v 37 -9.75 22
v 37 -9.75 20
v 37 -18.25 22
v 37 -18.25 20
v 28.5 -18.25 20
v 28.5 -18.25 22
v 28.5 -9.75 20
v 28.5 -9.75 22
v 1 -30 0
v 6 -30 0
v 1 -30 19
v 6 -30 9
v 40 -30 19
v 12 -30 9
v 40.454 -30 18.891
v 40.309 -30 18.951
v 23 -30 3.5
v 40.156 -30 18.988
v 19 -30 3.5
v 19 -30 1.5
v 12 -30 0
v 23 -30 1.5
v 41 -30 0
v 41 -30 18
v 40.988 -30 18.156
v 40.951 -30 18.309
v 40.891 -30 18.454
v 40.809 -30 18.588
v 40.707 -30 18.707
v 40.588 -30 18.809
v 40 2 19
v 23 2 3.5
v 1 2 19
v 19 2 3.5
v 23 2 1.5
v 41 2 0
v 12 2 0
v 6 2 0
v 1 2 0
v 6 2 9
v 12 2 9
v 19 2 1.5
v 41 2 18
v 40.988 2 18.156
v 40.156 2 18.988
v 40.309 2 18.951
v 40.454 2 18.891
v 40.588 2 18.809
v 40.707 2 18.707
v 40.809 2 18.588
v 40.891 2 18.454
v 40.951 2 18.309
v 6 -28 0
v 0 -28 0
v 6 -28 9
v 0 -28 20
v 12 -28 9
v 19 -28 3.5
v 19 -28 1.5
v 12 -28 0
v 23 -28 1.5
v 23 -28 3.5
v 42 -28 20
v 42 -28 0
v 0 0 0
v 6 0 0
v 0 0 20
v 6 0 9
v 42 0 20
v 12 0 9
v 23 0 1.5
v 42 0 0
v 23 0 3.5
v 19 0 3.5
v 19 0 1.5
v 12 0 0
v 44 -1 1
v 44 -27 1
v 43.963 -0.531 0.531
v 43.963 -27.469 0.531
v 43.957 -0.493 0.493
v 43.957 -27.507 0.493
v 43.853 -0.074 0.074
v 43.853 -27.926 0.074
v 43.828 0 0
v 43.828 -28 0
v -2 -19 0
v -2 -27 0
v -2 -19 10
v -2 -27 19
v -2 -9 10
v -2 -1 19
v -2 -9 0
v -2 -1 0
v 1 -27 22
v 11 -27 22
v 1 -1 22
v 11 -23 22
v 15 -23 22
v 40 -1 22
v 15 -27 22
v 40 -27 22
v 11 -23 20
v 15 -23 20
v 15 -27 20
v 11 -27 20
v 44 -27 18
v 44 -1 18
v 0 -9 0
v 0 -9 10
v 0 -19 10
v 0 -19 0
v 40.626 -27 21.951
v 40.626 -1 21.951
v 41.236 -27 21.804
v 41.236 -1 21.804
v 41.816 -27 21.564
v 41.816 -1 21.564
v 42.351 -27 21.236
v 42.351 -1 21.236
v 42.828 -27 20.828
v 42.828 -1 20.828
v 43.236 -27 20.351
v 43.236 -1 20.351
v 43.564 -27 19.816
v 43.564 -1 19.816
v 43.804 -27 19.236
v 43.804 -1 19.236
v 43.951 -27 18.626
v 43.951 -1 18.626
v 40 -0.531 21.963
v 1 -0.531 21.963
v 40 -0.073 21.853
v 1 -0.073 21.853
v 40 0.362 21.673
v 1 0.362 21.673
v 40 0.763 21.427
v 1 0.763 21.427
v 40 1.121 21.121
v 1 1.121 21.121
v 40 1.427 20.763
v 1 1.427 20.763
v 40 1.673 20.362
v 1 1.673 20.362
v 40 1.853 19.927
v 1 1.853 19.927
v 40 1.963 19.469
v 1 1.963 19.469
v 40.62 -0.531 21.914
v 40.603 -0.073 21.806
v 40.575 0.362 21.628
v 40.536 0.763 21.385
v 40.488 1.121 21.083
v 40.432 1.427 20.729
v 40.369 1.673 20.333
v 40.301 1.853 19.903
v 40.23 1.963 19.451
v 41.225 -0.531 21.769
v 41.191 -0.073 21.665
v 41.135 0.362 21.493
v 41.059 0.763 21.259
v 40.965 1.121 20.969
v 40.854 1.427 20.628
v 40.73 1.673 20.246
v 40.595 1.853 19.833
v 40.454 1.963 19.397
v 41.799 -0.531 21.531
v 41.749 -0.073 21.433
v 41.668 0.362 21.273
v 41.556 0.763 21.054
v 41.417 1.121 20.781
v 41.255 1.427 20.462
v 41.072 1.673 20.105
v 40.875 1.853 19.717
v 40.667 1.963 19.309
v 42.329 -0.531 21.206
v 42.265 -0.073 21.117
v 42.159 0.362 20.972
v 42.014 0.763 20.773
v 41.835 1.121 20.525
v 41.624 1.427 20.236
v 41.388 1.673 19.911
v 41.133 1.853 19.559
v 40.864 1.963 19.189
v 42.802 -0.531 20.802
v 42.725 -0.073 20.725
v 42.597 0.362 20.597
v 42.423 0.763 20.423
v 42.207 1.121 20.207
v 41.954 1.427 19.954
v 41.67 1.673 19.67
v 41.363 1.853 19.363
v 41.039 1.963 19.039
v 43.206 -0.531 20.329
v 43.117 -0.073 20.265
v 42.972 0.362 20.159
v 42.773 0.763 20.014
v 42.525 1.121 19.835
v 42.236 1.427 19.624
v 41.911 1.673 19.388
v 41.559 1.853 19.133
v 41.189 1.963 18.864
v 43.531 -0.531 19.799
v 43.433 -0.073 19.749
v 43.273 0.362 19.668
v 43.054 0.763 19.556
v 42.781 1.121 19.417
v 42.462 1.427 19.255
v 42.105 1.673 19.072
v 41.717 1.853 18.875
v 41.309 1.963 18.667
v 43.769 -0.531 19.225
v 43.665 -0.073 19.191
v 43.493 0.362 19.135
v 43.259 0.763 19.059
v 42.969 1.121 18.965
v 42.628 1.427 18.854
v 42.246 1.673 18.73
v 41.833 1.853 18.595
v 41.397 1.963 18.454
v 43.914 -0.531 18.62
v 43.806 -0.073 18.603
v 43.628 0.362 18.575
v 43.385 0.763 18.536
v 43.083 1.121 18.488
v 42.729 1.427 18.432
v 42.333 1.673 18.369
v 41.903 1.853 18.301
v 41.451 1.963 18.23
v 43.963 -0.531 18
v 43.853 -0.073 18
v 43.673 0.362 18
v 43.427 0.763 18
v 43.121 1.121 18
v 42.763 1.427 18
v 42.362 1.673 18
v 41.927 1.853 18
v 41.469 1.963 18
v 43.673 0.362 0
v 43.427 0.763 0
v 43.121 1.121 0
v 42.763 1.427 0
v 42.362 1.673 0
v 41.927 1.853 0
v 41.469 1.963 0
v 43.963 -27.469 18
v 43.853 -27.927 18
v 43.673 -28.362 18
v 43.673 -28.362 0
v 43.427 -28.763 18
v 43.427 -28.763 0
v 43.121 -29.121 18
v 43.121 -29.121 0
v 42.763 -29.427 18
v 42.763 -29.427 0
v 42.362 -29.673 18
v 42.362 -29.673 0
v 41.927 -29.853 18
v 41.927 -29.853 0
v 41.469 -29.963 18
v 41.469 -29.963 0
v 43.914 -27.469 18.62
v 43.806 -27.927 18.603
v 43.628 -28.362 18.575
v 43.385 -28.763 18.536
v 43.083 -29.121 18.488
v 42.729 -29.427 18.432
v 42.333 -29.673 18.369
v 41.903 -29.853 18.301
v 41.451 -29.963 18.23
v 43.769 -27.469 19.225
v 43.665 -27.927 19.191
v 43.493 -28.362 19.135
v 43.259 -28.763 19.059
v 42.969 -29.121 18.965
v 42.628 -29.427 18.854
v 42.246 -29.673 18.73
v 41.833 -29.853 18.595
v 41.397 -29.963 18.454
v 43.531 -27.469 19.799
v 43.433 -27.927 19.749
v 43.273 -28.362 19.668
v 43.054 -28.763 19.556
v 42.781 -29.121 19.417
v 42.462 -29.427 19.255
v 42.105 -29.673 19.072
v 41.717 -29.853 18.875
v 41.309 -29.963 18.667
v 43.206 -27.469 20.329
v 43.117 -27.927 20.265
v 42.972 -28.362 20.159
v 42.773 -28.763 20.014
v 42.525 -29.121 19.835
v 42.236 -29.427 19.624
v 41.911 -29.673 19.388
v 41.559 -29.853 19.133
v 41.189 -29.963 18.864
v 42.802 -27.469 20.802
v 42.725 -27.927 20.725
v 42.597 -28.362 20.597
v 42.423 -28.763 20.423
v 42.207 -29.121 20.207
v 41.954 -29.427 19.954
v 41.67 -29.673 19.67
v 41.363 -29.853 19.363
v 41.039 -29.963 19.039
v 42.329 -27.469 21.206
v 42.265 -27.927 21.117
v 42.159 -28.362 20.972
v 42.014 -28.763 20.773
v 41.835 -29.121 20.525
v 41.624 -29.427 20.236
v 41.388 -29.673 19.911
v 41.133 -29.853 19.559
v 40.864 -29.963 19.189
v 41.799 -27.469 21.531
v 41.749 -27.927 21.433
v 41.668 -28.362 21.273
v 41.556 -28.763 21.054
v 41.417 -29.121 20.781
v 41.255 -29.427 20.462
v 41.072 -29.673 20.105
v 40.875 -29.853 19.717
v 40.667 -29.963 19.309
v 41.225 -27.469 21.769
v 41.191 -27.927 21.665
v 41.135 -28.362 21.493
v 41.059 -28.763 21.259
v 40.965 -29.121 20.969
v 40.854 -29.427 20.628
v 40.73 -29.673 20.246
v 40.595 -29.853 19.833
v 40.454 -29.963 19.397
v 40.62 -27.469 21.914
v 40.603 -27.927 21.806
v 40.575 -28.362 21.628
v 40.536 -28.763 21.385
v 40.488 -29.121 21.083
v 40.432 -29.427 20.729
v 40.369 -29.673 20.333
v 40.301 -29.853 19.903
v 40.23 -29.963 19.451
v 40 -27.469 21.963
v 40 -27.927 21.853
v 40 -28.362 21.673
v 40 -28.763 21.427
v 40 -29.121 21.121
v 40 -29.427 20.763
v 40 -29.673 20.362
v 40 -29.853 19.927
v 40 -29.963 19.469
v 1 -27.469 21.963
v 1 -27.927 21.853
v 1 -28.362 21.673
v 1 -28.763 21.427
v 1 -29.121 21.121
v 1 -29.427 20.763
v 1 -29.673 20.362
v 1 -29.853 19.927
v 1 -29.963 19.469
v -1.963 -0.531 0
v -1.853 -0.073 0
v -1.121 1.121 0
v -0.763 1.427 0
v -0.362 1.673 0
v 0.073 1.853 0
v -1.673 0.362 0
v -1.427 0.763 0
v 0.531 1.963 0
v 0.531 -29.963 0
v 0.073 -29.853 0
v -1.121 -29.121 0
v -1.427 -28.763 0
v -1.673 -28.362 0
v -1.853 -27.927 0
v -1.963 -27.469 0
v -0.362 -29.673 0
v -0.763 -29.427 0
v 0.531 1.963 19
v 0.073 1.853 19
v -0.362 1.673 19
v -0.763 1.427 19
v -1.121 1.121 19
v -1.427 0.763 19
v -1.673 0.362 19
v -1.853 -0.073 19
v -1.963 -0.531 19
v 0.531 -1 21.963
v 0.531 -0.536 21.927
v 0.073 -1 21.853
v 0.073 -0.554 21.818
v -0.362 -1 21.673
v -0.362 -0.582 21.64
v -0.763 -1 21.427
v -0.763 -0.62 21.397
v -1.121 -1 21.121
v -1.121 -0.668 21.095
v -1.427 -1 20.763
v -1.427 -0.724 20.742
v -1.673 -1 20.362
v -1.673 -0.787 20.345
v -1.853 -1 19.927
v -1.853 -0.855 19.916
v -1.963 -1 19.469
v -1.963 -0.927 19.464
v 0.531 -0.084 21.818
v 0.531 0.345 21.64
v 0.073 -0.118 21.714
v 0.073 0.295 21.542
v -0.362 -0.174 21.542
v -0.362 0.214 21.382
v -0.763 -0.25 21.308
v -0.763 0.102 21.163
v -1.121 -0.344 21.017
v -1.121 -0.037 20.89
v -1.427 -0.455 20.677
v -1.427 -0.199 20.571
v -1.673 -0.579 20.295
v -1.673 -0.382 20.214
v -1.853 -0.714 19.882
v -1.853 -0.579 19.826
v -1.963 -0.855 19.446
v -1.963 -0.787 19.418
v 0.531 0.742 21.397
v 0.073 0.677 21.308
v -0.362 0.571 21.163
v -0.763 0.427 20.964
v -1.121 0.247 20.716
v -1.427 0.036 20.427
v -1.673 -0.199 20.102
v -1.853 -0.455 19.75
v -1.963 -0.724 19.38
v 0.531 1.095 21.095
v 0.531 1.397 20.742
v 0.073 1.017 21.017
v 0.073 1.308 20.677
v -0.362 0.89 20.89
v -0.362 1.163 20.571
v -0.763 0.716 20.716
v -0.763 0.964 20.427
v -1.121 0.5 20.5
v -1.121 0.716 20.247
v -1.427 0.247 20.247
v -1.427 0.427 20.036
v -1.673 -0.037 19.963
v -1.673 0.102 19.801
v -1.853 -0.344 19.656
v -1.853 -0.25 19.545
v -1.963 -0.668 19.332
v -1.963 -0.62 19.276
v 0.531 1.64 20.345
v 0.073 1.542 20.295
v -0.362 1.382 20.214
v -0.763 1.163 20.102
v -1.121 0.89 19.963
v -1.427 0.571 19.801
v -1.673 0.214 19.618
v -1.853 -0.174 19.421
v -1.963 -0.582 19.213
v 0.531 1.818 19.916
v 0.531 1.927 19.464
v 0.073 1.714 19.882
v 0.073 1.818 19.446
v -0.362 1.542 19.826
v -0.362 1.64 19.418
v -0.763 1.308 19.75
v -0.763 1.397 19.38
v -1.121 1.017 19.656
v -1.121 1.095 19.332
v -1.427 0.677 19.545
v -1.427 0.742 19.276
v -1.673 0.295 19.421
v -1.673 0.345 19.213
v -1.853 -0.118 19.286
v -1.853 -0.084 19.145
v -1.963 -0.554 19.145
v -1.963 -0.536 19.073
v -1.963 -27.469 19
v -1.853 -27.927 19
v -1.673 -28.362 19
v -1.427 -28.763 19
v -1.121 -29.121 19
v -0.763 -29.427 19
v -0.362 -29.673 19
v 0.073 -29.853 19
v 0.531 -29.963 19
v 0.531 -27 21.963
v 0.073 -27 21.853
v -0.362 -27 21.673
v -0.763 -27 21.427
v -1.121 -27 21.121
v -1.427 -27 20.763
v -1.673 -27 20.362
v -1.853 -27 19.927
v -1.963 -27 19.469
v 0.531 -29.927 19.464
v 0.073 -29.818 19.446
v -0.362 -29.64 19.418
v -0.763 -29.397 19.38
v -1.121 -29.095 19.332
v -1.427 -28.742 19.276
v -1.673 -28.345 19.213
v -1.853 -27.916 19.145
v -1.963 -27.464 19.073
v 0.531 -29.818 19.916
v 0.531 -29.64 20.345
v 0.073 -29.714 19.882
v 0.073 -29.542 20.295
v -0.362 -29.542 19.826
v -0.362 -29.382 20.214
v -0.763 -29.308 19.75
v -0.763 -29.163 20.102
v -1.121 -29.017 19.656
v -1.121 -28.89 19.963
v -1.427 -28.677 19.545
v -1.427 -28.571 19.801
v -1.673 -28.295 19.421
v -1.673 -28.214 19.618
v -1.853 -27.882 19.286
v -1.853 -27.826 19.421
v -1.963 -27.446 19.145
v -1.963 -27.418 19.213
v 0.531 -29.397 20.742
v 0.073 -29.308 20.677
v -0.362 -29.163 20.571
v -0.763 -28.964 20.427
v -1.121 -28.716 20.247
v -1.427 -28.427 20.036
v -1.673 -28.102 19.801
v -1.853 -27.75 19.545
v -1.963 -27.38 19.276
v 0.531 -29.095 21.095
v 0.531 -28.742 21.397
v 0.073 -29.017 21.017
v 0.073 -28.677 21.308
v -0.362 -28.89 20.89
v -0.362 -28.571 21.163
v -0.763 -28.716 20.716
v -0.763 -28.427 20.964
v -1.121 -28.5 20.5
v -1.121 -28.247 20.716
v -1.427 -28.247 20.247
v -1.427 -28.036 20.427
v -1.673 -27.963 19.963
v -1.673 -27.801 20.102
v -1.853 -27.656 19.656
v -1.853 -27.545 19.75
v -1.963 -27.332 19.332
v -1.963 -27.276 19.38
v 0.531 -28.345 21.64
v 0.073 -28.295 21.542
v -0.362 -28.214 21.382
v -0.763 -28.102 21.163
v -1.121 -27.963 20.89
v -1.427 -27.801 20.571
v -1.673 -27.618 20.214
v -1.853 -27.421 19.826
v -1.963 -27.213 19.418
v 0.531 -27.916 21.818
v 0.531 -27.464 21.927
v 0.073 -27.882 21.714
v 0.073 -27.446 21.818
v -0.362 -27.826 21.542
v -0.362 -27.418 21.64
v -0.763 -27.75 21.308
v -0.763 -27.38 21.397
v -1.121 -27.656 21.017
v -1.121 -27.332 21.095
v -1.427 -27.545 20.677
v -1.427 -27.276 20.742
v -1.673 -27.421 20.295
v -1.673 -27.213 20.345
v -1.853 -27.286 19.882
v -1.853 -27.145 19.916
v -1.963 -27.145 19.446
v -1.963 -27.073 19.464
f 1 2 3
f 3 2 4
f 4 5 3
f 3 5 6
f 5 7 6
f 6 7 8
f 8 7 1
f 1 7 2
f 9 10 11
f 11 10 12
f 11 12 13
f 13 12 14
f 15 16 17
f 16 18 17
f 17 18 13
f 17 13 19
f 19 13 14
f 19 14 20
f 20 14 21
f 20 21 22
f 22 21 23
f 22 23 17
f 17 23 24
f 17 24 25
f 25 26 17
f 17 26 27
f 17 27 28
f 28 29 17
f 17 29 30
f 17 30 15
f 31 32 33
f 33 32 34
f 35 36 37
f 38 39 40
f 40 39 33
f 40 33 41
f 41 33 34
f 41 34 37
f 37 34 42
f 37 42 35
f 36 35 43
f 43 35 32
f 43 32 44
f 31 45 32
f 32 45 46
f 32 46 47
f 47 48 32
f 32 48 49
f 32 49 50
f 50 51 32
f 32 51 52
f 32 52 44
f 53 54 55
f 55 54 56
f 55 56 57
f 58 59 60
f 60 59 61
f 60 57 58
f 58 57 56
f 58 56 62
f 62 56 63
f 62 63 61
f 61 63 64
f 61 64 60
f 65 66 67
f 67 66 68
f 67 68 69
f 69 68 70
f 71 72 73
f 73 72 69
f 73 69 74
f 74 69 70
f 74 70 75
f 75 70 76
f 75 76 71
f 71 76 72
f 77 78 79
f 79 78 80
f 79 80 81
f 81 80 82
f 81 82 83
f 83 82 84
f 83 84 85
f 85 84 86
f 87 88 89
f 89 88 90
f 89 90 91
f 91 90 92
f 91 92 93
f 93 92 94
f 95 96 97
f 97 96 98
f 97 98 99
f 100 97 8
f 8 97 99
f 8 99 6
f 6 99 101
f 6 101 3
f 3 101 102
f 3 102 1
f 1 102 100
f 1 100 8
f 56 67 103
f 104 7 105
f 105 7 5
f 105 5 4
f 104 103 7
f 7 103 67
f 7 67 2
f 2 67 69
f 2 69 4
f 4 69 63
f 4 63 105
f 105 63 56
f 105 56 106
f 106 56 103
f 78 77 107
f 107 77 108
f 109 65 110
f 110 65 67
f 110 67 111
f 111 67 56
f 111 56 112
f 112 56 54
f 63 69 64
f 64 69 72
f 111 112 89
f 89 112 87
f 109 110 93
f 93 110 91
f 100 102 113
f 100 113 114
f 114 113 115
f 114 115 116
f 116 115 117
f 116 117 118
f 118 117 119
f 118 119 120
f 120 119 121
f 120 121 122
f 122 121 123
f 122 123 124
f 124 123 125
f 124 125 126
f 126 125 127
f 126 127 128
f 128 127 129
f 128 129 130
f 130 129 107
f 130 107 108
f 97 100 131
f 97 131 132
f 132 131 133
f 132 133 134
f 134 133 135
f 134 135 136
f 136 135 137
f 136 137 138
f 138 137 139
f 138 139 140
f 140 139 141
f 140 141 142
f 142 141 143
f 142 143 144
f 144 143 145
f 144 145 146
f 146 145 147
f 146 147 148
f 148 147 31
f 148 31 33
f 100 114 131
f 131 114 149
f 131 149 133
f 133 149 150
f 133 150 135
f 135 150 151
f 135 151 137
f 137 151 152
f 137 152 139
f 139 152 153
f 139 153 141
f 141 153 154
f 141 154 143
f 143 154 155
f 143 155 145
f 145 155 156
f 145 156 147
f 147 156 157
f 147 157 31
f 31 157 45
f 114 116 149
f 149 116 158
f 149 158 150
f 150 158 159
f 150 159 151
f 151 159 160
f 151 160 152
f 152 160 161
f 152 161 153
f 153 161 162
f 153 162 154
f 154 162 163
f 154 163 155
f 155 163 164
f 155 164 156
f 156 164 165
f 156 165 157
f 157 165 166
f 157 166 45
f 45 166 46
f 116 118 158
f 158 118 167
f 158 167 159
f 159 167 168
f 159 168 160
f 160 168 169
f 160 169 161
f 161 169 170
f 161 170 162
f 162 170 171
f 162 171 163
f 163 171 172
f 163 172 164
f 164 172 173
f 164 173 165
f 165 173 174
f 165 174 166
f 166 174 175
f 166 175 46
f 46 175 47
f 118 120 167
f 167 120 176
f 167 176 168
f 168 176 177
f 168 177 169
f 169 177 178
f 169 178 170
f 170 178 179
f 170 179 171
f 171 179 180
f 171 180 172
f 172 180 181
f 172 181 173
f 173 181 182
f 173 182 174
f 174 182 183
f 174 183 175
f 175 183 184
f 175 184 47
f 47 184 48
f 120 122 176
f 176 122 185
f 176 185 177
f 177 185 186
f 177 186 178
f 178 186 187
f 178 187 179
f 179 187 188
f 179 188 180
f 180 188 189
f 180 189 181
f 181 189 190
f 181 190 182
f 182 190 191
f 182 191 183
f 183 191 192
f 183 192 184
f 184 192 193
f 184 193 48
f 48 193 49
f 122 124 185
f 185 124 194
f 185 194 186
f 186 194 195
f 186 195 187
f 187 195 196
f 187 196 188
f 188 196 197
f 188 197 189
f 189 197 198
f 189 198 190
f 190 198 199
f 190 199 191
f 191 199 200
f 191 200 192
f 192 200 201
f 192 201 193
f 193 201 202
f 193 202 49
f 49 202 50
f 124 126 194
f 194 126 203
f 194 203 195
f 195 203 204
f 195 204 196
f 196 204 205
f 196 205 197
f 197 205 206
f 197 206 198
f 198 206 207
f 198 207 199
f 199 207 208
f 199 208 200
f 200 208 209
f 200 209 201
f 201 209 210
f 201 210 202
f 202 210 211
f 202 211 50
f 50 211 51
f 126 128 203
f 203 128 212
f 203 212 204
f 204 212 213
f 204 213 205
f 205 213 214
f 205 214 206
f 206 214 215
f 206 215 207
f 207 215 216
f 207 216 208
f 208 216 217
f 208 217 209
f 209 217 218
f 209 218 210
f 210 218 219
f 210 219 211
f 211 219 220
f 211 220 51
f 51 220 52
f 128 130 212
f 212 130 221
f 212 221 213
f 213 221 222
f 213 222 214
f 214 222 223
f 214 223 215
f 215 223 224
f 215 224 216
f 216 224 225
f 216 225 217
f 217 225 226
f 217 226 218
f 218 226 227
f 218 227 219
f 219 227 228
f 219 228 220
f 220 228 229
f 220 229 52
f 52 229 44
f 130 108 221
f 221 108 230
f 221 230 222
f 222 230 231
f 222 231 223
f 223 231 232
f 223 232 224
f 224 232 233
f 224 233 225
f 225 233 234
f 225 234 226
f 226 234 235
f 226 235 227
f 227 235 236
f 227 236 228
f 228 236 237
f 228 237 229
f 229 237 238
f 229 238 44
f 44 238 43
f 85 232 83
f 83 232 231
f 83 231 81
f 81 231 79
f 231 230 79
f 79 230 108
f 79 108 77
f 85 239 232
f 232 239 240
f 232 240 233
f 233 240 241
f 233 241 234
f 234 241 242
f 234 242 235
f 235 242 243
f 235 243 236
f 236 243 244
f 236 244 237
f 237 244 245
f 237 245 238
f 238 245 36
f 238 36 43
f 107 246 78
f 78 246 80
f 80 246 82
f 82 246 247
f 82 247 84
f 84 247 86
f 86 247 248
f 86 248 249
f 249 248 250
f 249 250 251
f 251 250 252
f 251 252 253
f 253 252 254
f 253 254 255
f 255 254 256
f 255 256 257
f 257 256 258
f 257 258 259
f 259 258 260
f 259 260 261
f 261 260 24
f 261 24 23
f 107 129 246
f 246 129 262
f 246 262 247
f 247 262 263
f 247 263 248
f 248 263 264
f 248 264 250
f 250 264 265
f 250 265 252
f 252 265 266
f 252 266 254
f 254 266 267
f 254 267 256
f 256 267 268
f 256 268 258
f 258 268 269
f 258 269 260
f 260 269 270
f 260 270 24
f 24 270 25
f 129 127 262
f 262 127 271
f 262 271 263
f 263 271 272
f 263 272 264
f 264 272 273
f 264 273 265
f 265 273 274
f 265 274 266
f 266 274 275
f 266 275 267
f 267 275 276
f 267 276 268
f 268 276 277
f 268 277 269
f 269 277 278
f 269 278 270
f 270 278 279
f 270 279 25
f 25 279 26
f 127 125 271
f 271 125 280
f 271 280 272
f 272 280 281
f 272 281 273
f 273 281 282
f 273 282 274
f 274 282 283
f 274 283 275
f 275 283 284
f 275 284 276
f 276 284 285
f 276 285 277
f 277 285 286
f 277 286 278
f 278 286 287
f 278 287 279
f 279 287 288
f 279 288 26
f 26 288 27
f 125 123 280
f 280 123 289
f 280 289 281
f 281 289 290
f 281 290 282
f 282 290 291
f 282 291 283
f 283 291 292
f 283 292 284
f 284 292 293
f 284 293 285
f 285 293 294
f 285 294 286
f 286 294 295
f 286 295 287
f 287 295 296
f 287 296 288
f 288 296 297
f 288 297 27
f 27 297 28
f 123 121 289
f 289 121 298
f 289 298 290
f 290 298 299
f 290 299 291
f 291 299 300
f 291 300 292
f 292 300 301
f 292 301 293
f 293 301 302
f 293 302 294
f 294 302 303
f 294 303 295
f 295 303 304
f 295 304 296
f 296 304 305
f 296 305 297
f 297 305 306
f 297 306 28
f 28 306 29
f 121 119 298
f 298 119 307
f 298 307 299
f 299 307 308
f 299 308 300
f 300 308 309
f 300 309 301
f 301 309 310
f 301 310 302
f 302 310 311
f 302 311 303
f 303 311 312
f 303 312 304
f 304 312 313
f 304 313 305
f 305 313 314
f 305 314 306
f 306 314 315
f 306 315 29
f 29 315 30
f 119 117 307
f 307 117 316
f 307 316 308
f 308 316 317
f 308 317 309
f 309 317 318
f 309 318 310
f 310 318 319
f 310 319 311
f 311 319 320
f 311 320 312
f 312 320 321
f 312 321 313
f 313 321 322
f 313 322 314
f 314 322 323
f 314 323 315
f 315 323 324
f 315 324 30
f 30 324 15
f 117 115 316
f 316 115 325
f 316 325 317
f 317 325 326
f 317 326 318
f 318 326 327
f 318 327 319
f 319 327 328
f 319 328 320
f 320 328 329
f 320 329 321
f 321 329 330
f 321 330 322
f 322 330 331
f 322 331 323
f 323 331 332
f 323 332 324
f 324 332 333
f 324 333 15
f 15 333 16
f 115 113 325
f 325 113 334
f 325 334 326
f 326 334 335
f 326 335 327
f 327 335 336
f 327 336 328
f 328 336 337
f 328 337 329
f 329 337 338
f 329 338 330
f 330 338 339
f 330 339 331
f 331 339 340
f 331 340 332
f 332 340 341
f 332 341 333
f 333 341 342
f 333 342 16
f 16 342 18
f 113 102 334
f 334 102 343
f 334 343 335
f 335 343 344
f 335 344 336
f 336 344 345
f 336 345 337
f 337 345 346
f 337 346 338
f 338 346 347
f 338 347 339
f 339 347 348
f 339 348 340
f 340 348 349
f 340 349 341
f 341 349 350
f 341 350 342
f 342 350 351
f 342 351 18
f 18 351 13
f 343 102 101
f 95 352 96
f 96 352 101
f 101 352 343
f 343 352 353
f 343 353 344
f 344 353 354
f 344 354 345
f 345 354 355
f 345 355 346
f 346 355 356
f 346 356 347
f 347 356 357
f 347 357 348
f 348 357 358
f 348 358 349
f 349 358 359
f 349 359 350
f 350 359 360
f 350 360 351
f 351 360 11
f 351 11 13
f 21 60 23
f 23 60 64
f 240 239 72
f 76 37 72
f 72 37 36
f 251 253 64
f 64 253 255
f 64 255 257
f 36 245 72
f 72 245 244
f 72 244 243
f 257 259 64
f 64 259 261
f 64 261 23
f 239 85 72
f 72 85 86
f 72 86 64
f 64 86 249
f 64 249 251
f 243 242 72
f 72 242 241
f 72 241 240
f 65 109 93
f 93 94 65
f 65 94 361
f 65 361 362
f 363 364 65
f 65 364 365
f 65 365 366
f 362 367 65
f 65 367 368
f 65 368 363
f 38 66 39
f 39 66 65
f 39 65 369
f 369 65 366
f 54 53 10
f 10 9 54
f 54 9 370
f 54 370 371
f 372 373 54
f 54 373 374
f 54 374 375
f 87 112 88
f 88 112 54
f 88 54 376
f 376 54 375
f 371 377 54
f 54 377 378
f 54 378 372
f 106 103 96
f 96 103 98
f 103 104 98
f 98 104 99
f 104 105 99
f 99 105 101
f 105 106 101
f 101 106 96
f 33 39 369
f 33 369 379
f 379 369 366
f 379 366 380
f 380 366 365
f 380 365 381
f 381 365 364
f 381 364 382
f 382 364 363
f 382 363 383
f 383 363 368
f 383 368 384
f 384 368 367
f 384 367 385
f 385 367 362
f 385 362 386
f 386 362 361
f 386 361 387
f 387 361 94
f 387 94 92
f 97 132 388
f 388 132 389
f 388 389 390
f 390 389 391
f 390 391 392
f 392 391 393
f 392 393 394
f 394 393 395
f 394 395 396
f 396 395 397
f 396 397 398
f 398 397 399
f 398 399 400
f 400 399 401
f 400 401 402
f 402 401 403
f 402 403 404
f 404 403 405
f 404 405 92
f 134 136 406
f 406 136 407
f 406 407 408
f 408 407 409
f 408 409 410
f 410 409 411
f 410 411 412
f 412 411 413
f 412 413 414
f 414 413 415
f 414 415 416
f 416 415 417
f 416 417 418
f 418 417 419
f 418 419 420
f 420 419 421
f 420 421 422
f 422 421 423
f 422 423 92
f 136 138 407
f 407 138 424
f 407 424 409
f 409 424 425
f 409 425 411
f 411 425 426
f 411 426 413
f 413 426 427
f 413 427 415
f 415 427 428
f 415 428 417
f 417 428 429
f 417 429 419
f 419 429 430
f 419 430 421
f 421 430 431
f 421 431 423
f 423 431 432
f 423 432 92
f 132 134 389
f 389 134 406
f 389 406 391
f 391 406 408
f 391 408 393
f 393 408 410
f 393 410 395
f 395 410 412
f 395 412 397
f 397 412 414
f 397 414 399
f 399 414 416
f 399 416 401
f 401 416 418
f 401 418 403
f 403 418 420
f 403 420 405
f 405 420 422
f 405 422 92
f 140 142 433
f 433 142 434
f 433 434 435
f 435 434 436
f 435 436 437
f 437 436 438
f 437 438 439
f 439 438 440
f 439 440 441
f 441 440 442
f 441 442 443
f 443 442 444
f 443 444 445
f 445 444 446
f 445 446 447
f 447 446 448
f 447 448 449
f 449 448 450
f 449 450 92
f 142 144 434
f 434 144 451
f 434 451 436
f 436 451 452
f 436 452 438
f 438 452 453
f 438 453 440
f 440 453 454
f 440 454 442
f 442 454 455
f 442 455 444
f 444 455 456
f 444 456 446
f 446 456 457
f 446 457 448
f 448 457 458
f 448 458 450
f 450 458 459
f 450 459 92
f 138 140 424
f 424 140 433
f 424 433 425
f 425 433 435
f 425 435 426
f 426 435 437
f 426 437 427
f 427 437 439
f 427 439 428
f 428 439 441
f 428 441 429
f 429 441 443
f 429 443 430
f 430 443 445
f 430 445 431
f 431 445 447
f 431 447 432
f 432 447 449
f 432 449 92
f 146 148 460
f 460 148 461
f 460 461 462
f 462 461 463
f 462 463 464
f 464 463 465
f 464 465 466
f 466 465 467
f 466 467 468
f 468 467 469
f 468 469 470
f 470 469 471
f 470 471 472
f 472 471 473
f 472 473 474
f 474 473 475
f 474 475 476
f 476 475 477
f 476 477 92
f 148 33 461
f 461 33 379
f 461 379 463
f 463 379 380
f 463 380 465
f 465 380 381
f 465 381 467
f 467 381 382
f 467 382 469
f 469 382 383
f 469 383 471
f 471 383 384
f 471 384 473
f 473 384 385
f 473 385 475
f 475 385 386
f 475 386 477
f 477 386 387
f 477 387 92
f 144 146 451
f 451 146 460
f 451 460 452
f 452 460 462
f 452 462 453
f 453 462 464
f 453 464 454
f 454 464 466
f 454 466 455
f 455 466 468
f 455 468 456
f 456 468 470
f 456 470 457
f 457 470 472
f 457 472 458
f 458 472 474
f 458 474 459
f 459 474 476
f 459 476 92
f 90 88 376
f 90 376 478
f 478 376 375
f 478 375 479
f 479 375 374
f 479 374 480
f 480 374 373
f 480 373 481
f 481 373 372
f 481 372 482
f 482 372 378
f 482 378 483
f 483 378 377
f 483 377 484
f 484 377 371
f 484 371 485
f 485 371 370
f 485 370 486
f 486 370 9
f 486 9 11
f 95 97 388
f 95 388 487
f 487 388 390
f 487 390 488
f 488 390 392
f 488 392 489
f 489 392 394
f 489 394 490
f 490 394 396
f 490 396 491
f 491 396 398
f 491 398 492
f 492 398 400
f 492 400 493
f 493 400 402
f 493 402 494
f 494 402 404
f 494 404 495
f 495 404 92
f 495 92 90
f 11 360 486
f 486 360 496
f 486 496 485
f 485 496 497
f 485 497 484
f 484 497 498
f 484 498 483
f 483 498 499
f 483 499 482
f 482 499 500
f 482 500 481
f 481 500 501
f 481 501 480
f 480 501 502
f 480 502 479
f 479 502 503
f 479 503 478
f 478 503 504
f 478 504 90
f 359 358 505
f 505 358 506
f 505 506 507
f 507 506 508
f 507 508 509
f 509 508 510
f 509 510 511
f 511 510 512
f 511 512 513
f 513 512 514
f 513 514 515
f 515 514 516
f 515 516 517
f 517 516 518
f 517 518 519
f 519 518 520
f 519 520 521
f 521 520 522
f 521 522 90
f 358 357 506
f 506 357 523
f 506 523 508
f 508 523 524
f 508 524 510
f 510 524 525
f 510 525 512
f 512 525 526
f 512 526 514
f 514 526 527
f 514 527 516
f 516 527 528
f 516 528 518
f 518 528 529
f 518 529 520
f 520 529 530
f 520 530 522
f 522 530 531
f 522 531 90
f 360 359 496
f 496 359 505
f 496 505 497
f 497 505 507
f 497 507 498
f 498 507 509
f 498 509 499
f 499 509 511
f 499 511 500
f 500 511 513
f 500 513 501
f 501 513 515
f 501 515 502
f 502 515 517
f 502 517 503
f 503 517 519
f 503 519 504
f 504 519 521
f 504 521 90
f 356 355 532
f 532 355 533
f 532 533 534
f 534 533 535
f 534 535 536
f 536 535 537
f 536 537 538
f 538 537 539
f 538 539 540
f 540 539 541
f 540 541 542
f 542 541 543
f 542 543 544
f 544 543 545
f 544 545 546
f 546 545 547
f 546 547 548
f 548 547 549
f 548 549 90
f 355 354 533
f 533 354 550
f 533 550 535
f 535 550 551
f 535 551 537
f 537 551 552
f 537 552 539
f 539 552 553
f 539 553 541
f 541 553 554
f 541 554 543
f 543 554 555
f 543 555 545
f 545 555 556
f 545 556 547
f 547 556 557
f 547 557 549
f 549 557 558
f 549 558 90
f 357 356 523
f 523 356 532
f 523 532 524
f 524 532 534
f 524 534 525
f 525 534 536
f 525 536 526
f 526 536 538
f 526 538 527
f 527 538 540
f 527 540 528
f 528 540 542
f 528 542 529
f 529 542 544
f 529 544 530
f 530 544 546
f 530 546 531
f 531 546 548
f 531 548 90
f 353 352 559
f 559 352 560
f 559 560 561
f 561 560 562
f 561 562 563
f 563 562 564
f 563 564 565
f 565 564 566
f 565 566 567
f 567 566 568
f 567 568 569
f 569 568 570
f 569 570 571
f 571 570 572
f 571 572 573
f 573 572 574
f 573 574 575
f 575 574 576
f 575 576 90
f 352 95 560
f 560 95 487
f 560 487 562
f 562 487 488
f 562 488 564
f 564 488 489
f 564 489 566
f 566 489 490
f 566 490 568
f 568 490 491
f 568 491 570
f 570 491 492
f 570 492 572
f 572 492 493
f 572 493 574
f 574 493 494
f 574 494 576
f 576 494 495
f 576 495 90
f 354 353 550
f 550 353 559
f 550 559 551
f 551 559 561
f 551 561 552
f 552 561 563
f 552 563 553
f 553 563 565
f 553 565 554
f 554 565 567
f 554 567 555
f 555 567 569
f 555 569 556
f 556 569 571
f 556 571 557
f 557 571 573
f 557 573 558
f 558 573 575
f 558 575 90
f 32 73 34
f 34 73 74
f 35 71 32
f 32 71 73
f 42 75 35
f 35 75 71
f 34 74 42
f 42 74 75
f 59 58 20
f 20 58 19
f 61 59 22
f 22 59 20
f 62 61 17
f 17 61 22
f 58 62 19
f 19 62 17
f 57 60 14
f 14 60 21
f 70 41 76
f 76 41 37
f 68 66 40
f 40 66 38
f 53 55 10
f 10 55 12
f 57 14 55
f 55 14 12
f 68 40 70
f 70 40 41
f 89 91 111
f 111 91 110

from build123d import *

# Parameters (mm, degrees)
SKETCH1_W                = 46
SKETCH1_H                = 32
SKETCH1_W_2              = 42
SKETCH1_H_2              = 28
BOSS_EXTRUDE1_DEPTH      = 20
SKETCH2_W                = 46
SKETCH2_H                = 32
BOSS_EXTRUDE2_DEPTH      = 2
SKETCH3_W                = 8
SKETCH3_H                = 4
CUT_EXTRUDE2_DEPTH       = 58.965506985
SKETCH4_W                = 5
SKETCH4_H                = 5
CUT_EXTRUDE3_DEPTH       = 2
SKETCH5_W                = 46
SKETCH5_H                = 32
BOSS_EXTRUDE3_DEPTH      = 2
SKETCH6_W                = 8.5
SKETCH6_H                = 4.25
CUT_EXTRUDE4_DEPTH       = 2
SKETCH7_W                = 11.5
SKETCH7_H                = 11.5
SKETCH7_W_2              = 8.5
SKETCH7_H_2              = 8.5
BOSS_EXTRUDE5_DEPTH      = 2
SKETCH9_R                = 5.75
SKETCH9_R_2              = 5
BOSS_EXTRUDE8_DEPTH      = 4
BOSS_EXTRUDE9_DEPTH      = 0.5
FILLET2_R                = 4
FILLET3_R                = 3
FILLET4_R                = 2
SKETCH13_W               = 43
SKETCH13_H               = 32
CUT_EXTRUDE5_DEPTH       = 2
SKETCH14_W               = 2
SKETCH14_H               = 32
CUT_EXTRUDE6_DEPTH       = 2
SKETCH15_W               = 4
SKETCH15_H               = 4
CUT_EXTRUDE9_DEPTH       = 2
SKETCH16_W               = 1.236067977
SKETCH16_H               = 30.472135954
CUT_EXTRUDE10_DEPTH      = 2
FILLET9_R                = 3
CUT_EXTRUDE11_DEPTH      = 62.188234163
CUT_EXTRUDE11_DEPTH_BACK = 62.188234163
SKETCH19_W               = 4
SKETCH19_H               = 2
SKETCH21_W               = 2
SKETCH21_H               = 4
CUT_EXTRUDE12_DEPTH      = 55
SKETCH22_W               = 4
SKETCH22_H               = 4
BOSS_EXTRUDE10_DEPTH     = 2
SKETCH23_W               = 4
SKETCH23_H               = 4
BOSS_EXTRUDE11_DEPTH     = 2
SKETCH24_W               = 6
SKETCH24_H               = 5
CUT_EXTRUDE13_DEPTH      = 46.5
SKETCH25_W               = 5
SKETCH25_H               = 10
CUT_EXTRUDE14_DEPTH      = 13
CUT_EXTRUDE15_START      = -3.5
SKETCH26_R               = 6.5
SKETCH26_R_2             = 5
CUT_EXTRUDE15_DEPTH      = 3.5
SKETCH27_W               = 11.5
SKETCH27_H               = 11.5
CUT_EXTRUDE16_DEPTH      = 2.5


with BuildPart() as part:
    # Sketch1 → Boss-Extrude1 (new body)
    with BuildSketch(Plane.XY):
        with Locations((21, -14)):
            Rectangle(SKETCH1_W, SKETCH1_H)
        with Locations((21, -14)):
            Rectangle(SKETCH1_W_2, SKETCH1_H_2, mode=Mode.SUBTRACT)
    extrude(amount=BOSS_EXTRUDE1_DEPTH)

    # Sketch2 → Boss-Extrude2 (add)
    with BuildSketch(Plane(origin=(0, 0, 0), x_dir=(-1, 0, 0), z_dir=(0, 0, -1))):
        with Locations((-21, -14)):
            Rectangle(SKETCH2_W, SKETCH2_H)
    extrude(amount=BOSS_EXTRUDE2_DEPTH)

    # Sketch3 → Cut-Extrude2 (cut, through all)
    with BuildSketch(Plane.XZ.offset(30)):
        with Locations((6, 2)):
            Rectangle(SKETCH3_W, SKETCH3_H)
    extrude(amount=-CUT_EXTRUDE2_DEPTH, mode=Mode.SUBTRACT)

    # Sketch4 → Cut-Extrude3 (cut)
    with BuildSketch(Plane.ZY.offset(2)):
        with Locations((2.5, -11.5)):
            Rectangle(SKETCH4_W, SKETCH4_H)
        with Locations((2.5, -16.5)):
            Rectangle(SKETCH4_W, SKETCH4_H)
    extrude(amount=-CUT_EXTRUDE3_DEPTH, mode=Mode.SUBTRACT)

    # Sketch5 → Boss-Extrude3 (add)
    with BuildSketch(Plane.XY.offset(20)):
        with Locations((21, -14)):
            Rectangle(SKETCH5_W, SKETCH5_H)
    extrude(amount=BOSS_EXTRUDE3_DEPTH)

    # Sketch6 → Cut-Extrude4 (cut)
    with BuildSketch(Plane.XY.offset(22)):
        with Locations((32.75, -11.875)):
            Rectangle(SKETCH6_W, SKETCH6_H)
        with Locations((32.75, -16.125)):
            Rectangle(SKETCH6_W, SKETCH6_H)
    extrude(amount=-CUT_EXTRUDE4_DEPTH, mode=Mode.SUBTRACT)

    # Sketch7 → Boss-Extrude5 (add)
    with BuildSketch(Plane.XY.offset(22)):
        with Locations((32.75, -14)):
            Rectangle(SKETCH7_W, SKETCH7_H)
        with Locations((32.75, -14)):
            Rectangle(SKETCH7_W_2, SKETCH7_H_2, mode=Mode.SUBTRACT)
    extrude(amount=BOSS_EXTRUDE5_DEPTH)

    # Sketch9 → Boss-Extrude8 (add)
    with BuildSketch(Plane.XY.offset(24)):
        with Locations((32.75, -14)):
            Circle(SKETCH9_R)
        with Locations(Location((32.75, -14, 0), (0, 0, 211.788330617))):
            Circle(SKETCH9_R_2, mode=Mode.SUBTRACT)
    extrude(amount=BOSS_EXTRUDE8_DEPTH)

    # Sketch11 → Boss-Extrude9 (add)
    with BuildSketch(Plane.XY.offset(24)):
        with BuildLine():
            Line((38.5, -19.75), (38.5, -14))
            ThreePointArc((38.5, -14), (38.111902647, -16.076655966), (37, -17.872983346))
            Line((37, -17.872983346), (37, -18.25))
            Line((37, -18.25), (36.622983346, -18.25))
            ThreePointArc((36.622983346, -18.25), (34.826655966, -19.361902647), (32.75, -19.75))
            Line((32.75, -19.75), (38.5, -19.75))
        make_face()
        with BuildLine():
            Line((27, -19.75), (29.718911087, -19.75))
            ThreePointArc((29.718911087, -19.75), (28.153805922, -18.596194078), (27, -17.031088913))
            Line((27, -17.031088913), (27, -19.75))
        make_face()
        with BuildLine():
            Line((38.5, -10.968911087), (38.5, -8.25))
            Line((38.5, -8.25), (35.781088913, -8.25))
            ThreePointArc((35.781088913, -8.25), (37.346194078, -9.403805922), (38.5, -10.968911087))
        make_face()
        with BuildLine():
            Line((27, -8.25), (27, -10.968911087))
            ThreePointArc((27, -10.968911087), (28.153805922, -9.403805922), (29.718911087, -8.25))
            Line((29.718911087, -8.25), (27, -8.25))
        make_face()
    extrude(amount=BOSS_EXTRUDE9_DEPTH)

    # Fillet2
    fillet2_edges = [part.edges().sort_by_distance(p)[0] for p in [
        (44, -14, 22),
    ]]
    fillet(fillet2_edges, radius=FILLET2_R)

    # Fillet3
    fillet3_edges = [part.edges().sort_by_distance(p)[0] for p in [
        (19, 2, 22),
        (44, 2, 8),
        (42.828427125, 2, 20.828427125),
        (44, -30, 8),
        (42.828427125, -30, 20.828427125),
        (44, -14, -2),
        (19, -30, 22),
    ]]
    fillet(fillet3_edges, radius=FILLET3_R)

    # Fillet4
    fillet4_edges = [part.edges().sort_by_distance(p)[0] for p in [
        (27, -8.25, 23.25),
        (27, -19.75, 23.25),
        (38.5, -19.75, 23.25),
        (38.5, -8.25, 23.25),
    ]]
    fillet(fillet4_edges, radius=FILLET4_R)

    # Sketch13 → Cut-Extrude5 (cut)
    with BuildSketch(Plane(origin=(0, 0, -2), x_dir=(-1, 0, 0), z_dir=(0, 0, -1))):
        with Locations((-19.5, -14)):
            Rectangle(SKETCH13_W, SKETCH13_H)
    extrude(amount=-CUT_EXTRUDE5_DEPTH, mode=Mode.SUBTRACT)

    # Sketch14 → Cut-Extrude6 (cut)
    with BuildSketch(Plane.ZY.offset(-41)):
        with Locations((-1, -14)):
            Rectangle(SKETCH14_W, SKETCH14_H)
    extrude(amount=-CUT_EXTRUDE6_DEPTH, mode=Mode.SUBTRACT)

    # Sketch15 → Cut-Extrude9 (cut)
    with BuildSketch(Plane.XY.offset(22)):
        with Locations((13, -25)):
            Rectangle(SKETCH15_W, SKETCH15_H)
    extrude(amount=-CUT_EXTRUDE9_DEPTH, mode=Mode.SUBTRACT)

    # Sketch16 → Cut-Extrude10 (cut)
    with BuildSketch(Plane.ZY.offset(-43)):
        with Locations((-0.618033989, -14)):
            Rectangle(SKETCH16_W, SKETCH16_H)
    extrude(amount=-CUT_EXTRUDE10_DEPTH, mode=Mode.SUBTRACT)

    # Fillet9
    fillet9_edges = [part.edges().sort_by_distance(p)[0] for p in [
        (-2, -14, 22),
        (-2, -30, 9.5),
        (-2, 2, 9.5),
        (-2, 1.121320344, 21.121320344),
        (-2, -29.121320344, 21.121320344),
    ]]
    fillet(fillet9_edges, radius=FILLET9_R)

    # Sketch19 → Cut-Extrude11 (cut, two sides: drawn at the far end of the back side and taken through both)
    with BuildSketch(Plane.XZ.offset(30).offset(-CUT_EXTRUDE11_DEPTH_BACK)):
        with Locations((21, 2.5)):
            Rectangle(SKETCH19_W, SKETCH19_H)
    extrude(amount=CUT_EXTRUDE11_DEPTH + CUT_EXTRUDE11_DEPTH_BACK, mode=Mode.SUBTRACT)

    # Sketch21 → Cut-Extrude12 (cut, symmetric)
    with BuildSketch(Plane(origin=(0, 2, 0), x_dir=(1, 0, 0), z_dir=(0, 1, 0))):
        with Locations((11, -2)):
            Rectangle(SKETCH21_W, SKETCH21_H)
    extrude(amount=CUT_EXTRUDE12_DEPTH, both=True, mode=Mode.SUBTRACT)

    # Sketch22 → Boss-Extrude10 (add)
    with BuildSketch(Plane(origin=(0, 2, 0), x_dir=(1, 0, 0), z_dir=(0, 1, 0))):
        with Locations((4, -2)):
            Rectangle(SKETCH22_W, SKETCH22_H)
    extrude(amount=-BOSS_EXTRUDE10_DEPTH)

    # Sketch23 → Boss-Extrude11 (add)
    with BuildSketch(Plane.XZ.offset(30)):
        with Locations((4, 2)):
            Rectangle(SKETCH23_W, SKETCH23_H)
    extrude(amount=-BOSS_EXTRUDE11_DEPTH)

    # Sketch24 → Cut-Extrude13 (cut, symmetric)
    with BuildSketch(Plane.XZ.offset(30)):
        with Locations((9, 6.5)):
            Rectangle(SKETCH24_W, SKETCH24_H)
    extrude(amount=CUT_EXTRUDE13_DEPTH, both=True, mode=Mode.SUBTRACT)

    # Sketch25 → Cut-Extrude14 (cut)
    with BuildSketch(Plane.ZY.offset(2)):
        with Locations((7.5, -14)):
            Rectangle(SKETCH25_W, SKETCH25_H)
    extrude(amount=-CUT_EXTRUDE14_DEPTH, mode=Mode.SUBTRACT)

    # Sketch26 → Cut-Extrude15 (cut)
    with BuildSketch(Plane.XY.offset(28).offset(CUT_EXTRUDE15_START)):
        with Locations((32.75, -14)):
            Circle(SKETCH26_R)
        with Locations(Location((32.75, -14, 0), (0, 0, 211.788330617))):
            Circle(SKETCH26_R_2, mode=Mode.SUBTRACT)
    extrude(amount=CUT_EXTRUDE15_DEPTH, mode=Mode.SUBTRACT)

    # Sketch27 → Cut-Extrude16 (cut)
    with BuildSketch(Plane.XY.offset(24.5)):
        with Locations((32.75, -14)):
            Rectangle(SKETCH27_W, SKETCH27_H)
    extrude(amount=-CUT_EXTRUDE16_DEPTH, mode=Mode.SUBTRACT)


solid = part.part
